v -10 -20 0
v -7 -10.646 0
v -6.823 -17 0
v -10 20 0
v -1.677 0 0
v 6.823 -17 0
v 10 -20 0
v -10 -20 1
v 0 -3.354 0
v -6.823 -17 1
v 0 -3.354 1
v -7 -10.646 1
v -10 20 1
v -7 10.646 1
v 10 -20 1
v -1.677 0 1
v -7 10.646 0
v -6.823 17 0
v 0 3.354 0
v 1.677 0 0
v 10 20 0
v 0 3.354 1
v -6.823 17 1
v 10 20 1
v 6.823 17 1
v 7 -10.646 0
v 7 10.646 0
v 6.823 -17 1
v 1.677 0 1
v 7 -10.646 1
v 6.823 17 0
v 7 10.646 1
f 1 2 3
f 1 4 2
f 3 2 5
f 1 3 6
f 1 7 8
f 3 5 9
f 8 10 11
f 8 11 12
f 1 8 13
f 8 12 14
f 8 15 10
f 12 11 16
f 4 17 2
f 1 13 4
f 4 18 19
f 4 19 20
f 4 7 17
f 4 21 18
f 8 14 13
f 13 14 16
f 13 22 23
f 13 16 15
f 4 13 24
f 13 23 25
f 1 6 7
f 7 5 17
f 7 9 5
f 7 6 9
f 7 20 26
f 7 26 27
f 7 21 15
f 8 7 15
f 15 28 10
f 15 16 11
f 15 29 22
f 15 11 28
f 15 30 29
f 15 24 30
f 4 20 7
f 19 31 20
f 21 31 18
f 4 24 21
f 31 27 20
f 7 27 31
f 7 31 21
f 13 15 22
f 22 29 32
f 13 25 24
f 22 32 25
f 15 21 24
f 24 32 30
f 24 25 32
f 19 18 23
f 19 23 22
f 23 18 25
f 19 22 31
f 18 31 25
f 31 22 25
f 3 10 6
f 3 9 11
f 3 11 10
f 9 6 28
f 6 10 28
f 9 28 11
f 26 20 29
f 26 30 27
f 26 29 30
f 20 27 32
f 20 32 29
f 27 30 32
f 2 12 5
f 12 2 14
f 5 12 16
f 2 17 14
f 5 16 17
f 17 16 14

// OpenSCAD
// plate_20x40x1_x: 20x40x1, 外框边宽 3 + 对角筋宽 3 (同 build_stl.py)
W=20; H=40; T=1; RIB=3;
linear_extrude(T) {
  difference() { square([W,H],center=true); square([W-2*RIB,H-2*RIB],center=true); }
  intersection() {
    square([W,H],center=true);
    for (s=[-1,1]) rotate(s*atan2(H,W)) square([2*sqrt(W*W+H*H),RIB],center=true);
  }
}
